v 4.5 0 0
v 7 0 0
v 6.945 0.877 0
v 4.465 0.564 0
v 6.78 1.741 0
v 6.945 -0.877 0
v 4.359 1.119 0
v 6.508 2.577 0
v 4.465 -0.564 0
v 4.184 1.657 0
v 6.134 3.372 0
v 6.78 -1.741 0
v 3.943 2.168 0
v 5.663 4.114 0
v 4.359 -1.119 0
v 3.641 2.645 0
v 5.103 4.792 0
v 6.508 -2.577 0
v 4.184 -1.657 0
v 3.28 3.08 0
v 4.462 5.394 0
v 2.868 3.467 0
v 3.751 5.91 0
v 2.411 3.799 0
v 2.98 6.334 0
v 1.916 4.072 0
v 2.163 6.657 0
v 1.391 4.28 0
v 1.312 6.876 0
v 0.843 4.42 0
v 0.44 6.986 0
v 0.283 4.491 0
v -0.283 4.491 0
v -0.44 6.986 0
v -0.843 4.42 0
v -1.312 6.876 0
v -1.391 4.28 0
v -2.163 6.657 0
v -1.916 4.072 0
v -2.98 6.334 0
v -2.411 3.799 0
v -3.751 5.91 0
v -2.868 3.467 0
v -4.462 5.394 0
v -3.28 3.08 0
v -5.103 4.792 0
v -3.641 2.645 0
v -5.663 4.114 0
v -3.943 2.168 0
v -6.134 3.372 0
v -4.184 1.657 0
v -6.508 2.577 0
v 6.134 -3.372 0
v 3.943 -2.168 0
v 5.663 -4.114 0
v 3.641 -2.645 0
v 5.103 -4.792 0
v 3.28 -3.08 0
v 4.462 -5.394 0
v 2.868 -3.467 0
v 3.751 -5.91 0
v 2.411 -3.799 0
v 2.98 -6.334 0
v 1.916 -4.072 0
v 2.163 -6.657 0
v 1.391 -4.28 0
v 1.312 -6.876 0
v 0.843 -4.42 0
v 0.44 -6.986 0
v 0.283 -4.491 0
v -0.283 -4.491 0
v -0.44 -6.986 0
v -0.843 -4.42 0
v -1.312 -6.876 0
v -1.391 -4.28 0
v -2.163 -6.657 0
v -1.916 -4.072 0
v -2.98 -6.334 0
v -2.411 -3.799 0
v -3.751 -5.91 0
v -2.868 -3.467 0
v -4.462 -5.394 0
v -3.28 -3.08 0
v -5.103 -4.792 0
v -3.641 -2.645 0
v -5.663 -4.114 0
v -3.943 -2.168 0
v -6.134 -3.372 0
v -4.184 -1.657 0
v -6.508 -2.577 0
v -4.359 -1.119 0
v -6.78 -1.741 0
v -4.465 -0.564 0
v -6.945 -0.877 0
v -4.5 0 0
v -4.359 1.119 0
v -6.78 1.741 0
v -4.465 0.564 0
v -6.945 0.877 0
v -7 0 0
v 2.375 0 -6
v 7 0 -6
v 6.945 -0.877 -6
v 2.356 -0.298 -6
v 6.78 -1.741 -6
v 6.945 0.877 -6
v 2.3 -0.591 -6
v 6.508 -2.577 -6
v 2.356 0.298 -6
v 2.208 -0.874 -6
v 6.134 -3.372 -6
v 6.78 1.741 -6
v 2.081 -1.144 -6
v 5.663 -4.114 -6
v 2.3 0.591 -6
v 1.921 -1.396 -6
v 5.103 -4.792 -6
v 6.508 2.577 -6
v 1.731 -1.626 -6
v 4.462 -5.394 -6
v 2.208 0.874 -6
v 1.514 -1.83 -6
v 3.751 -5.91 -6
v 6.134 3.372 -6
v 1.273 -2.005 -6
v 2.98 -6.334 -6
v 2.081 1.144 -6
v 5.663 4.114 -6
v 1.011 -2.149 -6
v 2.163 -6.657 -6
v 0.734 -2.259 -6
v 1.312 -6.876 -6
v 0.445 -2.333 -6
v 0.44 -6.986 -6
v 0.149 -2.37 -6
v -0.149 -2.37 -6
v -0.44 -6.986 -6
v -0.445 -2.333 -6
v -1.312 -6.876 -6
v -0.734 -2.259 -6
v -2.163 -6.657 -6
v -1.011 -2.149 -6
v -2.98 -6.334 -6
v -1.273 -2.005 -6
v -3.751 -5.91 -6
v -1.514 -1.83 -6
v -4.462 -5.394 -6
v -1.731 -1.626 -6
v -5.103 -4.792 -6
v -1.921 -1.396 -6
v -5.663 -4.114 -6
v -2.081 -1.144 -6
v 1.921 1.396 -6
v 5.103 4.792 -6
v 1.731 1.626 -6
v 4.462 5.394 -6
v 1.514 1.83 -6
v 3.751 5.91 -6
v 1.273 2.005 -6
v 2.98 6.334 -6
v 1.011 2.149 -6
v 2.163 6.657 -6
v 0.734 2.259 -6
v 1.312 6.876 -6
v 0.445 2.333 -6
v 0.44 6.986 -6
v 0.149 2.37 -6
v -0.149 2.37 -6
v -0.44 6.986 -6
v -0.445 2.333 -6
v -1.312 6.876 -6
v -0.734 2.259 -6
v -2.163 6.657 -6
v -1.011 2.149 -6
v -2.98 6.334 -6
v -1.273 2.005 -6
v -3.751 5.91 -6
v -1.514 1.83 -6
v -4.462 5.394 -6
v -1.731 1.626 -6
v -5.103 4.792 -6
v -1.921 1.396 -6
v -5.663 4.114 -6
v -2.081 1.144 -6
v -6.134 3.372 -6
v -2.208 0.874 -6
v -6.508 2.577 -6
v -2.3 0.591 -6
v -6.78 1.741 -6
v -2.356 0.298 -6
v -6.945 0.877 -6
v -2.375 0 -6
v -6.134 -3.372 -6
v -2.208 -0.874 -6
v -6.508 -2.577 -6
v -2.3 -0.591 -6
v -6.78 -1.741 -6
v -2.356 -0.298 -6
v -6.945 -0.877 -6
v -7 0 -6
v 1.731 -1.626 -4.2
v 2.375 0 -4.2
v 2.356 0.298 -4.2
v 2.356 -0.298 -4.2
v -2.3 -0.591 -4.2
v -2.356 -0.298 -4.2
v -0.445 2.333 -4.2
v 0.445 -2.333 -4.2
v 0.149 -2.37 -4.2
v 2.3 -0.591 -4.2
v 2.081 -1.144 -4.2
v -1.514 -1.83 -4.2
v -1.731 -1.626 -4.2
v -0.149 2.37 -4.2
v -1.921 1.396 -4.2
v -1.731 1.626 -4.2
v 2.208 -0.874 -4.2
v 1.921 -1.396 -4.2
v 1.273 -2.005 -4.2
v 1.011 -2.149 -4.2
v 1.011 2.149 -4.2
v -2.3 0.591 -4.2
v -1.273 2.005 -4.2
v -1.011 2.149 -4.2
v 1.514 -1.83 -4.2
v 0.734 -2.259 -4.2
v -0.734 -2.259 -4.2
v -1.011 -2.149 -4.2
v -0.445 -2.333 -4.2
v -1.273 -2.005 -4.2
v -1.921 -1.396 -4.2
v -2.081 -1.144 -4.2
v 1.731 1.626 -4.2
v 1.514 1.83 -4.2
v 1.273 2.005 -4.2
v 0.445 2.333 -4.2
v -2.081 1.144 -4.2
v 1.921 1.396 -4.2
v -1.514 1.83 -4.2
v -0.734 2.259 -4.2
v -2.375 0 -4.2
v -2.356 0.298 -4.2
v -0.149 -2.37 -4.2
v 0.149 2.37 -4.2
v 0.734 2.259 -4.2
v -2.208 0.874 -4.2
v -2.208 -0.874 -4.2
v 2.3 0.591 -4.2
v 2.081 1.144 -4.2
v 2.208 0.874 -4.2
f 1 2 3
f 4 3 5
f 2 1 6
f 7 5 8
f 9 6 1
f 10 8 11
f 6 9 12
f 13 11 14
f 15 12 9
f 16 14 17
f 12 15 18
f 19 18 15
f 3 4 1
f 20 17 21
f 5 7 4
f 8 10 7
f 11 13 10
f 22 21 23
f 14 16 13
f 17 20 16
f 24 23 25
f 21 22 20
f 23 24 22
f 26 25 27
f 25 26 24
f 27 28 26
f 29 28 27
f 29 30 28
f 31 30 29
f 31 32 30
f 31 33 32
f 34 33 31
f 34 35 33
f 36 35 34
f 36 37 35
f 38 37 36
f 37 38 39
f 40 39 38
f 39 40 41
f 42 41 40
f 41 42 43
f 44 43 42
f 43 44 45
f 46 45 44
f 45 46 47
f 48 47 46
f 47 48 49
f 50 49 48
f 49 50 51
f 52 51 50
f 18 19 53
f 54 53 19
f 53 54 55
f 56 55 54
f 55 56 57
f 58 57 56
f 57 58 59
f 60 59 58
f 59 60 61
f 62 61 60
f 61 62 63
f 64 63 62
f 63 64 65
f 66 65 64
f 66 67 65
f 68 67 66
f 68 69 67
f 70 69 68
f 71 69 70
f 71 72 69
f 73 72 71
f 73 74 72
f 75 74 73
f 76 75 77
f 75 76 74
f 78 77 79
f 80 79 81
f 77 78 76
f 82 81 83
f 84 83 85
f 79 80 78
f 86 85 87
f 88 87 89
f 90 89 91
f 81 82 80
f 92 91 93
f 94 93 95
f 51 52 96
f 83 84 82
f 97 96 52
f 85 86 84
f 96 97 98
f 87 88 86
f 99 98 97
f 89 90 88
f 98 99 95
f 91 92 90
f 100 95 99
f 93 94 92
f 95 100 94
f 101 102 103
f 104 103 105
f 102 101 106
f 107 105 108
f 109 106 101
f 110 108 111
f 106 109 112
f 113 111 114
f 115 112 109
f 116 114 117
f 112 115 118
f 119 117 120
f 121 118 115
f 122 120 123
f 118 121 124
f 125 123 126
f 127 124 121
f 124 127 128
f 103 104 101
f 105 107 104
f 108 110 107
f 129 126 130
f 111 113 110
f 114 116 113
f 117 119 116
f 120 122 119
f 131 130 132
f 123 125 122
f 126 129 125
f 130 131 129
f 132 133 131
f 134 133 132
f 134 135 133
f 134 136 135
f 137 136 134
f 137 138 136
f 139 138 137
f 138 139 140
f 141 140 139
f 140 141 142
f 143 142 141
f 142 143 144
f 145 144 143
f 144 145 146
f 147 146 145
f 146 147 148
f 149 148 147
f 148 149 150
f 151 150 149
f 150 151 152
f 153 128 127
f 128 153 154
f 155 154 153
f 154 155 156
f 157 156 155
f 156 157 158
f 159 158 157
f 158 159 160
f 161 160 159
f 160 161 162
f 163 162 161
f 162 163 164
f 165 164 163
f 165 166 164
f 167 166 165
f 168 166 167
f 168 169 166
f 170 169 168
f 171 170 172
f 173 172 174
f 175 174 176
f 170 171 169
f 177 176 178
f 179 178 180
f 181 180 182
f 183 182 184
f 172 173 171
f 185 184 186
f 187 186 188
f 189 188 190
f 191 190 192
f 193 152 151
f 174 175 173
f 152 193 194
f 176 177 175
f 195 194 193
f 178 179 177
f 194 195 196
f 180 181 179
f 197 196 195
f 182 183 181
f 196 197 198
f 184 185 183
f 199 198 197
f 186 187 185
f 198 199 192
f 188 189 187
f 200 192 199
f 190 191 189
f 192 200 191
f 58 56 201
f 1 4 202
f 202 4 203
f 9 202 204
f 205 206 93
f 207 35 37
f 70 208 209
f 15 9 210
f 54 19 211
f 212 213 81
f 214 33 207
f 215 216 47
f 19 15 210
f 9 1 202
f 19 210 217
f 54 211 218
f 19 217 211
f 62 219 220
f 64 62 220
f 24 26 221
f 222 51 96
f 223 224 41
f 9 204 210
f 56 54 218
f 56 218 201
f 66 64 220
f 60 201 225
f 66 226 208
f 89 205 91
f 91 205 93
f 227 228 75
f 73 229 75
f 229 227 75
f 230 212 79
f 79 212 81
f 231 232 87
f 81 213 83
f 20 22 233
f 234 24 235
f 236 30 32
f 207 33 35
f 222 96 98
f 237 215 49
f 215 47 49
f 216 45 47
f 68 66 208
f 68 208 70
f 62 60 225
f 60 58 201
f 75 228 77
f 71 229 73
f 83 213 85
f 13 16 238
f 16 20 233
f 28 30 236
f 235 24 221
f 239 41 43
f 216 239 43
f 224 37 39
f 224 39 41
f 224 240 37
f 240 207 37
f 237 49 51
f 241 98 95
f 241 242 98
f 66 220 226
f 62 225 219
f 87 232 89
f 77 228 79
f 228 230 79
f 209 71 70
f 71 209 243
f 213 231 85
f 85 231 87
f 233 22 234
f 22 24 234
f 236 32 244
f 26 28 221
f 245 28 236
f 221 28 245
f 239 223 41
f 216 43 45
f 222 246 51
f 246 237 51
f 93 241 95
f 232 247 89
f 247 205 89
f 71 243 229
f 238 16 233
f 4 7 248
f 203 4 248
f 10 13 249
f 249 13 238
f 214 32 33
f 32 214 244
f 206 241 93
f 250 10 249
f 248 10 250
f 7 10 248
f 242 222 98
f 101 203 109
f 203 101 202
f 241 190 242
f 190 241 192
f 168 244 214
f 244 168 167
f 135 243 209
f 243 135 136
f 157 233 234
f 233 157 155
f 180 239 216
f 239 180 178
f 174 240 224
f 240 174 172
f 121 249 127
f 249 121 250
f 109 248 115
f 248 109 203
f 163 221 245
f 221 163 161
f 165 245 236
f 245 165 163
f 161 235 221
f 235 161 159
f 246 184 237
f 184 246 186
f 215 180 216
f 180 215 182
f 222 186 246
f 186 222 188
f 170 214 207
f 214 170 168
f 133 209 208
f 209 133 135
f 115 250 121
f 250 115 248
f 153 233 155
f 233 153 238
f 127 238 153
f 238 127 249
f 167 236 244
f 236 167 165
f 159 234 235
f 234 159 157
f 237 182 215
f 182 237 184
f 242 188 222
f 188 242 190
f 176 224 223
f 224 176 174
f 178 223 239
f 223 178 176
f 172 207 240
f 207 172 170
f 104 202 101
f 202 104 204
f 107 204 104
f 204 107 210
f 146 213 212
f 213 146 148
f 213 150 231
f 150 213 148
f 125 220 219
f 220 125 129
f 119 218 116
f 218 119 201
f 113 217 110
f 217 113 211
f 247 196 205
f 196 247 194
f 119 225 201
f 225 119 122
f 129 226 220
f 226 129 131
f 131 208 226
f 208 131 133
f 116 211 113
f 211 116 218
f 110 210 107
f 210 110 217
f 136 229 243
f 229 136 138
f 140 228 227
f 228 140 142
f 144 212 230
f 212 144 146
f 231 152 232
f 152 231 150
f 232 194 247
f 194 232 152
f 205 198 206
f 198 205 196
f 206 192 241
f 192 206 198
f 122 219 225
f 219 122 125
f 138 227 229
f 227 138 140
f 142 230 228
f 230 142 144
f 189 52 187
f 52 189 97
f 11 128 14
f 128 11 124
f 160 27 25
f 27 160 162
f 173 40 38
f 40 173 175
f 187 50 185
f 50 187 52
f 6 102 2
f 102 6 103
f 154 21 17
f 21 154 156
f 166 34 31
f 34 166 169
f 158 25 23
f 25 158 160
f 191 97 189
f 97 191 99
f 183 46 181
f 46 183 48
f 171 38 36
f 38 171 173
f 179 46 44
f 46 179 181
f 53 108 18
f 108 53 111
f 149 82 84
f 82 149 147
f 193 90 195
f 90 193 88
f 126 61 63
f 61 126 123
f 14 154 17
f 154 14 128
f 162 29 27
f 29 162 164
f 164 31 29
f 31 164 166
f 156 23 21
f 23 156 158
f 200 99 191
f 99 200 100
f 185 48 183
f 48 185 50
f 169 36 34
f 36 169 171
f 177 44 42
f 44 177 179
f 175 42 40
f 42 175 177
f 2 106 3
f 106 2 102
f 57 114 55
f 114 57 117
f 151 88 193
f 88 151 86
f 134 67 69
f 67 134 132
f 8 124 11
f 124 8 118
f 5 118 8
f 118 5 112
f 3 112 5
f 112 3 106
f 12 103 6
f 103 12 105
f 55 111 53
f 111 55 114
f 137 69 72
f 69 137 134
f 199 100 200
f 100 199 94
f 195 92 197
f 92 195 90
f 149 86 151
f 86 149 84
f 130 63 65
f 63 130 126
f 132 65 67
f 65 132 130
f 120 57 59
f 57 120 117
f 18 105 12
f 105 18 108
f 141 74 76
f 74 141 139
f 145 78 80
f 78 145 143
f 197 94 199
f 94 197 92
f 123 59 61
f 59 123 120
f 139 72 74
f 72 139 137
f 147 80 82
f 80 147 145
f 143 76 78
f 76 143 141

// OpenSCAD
$fn = 50;


difference() {
	union() {
		translate(v = [0, 0, -6.0000000000]) {
			cylinder(h = 6, r = 7.0000000000);
		}
	}
	union() {
		translate(v = [0, 0, 0]) {
			rotate(a = [0, 0, 0]) {
				difference() {
					union() {
						#translate(v = [0, 0, -6.0000000000]) {
							cylinder(h = 6, r = 2.2500000000);
						}
						#translate(v = [0, 0, -4.2000000000]) {
							cylinder(h = 4.2000000000, r = 7.0000000000, r1 = 2.3750000000, r2 = 4.5000000000);
						}
						#translate(v = [0, 0, -6.0000000000]) {
							cylinder(h = 6, r = 2.3750000000);
						}
						#translate(v = [0, 0, -6.0000000000]) {
							cylinder(h = 6, r = 2.2500000000);
						}
					}
					union();
				}
			}
		}
	}
}
